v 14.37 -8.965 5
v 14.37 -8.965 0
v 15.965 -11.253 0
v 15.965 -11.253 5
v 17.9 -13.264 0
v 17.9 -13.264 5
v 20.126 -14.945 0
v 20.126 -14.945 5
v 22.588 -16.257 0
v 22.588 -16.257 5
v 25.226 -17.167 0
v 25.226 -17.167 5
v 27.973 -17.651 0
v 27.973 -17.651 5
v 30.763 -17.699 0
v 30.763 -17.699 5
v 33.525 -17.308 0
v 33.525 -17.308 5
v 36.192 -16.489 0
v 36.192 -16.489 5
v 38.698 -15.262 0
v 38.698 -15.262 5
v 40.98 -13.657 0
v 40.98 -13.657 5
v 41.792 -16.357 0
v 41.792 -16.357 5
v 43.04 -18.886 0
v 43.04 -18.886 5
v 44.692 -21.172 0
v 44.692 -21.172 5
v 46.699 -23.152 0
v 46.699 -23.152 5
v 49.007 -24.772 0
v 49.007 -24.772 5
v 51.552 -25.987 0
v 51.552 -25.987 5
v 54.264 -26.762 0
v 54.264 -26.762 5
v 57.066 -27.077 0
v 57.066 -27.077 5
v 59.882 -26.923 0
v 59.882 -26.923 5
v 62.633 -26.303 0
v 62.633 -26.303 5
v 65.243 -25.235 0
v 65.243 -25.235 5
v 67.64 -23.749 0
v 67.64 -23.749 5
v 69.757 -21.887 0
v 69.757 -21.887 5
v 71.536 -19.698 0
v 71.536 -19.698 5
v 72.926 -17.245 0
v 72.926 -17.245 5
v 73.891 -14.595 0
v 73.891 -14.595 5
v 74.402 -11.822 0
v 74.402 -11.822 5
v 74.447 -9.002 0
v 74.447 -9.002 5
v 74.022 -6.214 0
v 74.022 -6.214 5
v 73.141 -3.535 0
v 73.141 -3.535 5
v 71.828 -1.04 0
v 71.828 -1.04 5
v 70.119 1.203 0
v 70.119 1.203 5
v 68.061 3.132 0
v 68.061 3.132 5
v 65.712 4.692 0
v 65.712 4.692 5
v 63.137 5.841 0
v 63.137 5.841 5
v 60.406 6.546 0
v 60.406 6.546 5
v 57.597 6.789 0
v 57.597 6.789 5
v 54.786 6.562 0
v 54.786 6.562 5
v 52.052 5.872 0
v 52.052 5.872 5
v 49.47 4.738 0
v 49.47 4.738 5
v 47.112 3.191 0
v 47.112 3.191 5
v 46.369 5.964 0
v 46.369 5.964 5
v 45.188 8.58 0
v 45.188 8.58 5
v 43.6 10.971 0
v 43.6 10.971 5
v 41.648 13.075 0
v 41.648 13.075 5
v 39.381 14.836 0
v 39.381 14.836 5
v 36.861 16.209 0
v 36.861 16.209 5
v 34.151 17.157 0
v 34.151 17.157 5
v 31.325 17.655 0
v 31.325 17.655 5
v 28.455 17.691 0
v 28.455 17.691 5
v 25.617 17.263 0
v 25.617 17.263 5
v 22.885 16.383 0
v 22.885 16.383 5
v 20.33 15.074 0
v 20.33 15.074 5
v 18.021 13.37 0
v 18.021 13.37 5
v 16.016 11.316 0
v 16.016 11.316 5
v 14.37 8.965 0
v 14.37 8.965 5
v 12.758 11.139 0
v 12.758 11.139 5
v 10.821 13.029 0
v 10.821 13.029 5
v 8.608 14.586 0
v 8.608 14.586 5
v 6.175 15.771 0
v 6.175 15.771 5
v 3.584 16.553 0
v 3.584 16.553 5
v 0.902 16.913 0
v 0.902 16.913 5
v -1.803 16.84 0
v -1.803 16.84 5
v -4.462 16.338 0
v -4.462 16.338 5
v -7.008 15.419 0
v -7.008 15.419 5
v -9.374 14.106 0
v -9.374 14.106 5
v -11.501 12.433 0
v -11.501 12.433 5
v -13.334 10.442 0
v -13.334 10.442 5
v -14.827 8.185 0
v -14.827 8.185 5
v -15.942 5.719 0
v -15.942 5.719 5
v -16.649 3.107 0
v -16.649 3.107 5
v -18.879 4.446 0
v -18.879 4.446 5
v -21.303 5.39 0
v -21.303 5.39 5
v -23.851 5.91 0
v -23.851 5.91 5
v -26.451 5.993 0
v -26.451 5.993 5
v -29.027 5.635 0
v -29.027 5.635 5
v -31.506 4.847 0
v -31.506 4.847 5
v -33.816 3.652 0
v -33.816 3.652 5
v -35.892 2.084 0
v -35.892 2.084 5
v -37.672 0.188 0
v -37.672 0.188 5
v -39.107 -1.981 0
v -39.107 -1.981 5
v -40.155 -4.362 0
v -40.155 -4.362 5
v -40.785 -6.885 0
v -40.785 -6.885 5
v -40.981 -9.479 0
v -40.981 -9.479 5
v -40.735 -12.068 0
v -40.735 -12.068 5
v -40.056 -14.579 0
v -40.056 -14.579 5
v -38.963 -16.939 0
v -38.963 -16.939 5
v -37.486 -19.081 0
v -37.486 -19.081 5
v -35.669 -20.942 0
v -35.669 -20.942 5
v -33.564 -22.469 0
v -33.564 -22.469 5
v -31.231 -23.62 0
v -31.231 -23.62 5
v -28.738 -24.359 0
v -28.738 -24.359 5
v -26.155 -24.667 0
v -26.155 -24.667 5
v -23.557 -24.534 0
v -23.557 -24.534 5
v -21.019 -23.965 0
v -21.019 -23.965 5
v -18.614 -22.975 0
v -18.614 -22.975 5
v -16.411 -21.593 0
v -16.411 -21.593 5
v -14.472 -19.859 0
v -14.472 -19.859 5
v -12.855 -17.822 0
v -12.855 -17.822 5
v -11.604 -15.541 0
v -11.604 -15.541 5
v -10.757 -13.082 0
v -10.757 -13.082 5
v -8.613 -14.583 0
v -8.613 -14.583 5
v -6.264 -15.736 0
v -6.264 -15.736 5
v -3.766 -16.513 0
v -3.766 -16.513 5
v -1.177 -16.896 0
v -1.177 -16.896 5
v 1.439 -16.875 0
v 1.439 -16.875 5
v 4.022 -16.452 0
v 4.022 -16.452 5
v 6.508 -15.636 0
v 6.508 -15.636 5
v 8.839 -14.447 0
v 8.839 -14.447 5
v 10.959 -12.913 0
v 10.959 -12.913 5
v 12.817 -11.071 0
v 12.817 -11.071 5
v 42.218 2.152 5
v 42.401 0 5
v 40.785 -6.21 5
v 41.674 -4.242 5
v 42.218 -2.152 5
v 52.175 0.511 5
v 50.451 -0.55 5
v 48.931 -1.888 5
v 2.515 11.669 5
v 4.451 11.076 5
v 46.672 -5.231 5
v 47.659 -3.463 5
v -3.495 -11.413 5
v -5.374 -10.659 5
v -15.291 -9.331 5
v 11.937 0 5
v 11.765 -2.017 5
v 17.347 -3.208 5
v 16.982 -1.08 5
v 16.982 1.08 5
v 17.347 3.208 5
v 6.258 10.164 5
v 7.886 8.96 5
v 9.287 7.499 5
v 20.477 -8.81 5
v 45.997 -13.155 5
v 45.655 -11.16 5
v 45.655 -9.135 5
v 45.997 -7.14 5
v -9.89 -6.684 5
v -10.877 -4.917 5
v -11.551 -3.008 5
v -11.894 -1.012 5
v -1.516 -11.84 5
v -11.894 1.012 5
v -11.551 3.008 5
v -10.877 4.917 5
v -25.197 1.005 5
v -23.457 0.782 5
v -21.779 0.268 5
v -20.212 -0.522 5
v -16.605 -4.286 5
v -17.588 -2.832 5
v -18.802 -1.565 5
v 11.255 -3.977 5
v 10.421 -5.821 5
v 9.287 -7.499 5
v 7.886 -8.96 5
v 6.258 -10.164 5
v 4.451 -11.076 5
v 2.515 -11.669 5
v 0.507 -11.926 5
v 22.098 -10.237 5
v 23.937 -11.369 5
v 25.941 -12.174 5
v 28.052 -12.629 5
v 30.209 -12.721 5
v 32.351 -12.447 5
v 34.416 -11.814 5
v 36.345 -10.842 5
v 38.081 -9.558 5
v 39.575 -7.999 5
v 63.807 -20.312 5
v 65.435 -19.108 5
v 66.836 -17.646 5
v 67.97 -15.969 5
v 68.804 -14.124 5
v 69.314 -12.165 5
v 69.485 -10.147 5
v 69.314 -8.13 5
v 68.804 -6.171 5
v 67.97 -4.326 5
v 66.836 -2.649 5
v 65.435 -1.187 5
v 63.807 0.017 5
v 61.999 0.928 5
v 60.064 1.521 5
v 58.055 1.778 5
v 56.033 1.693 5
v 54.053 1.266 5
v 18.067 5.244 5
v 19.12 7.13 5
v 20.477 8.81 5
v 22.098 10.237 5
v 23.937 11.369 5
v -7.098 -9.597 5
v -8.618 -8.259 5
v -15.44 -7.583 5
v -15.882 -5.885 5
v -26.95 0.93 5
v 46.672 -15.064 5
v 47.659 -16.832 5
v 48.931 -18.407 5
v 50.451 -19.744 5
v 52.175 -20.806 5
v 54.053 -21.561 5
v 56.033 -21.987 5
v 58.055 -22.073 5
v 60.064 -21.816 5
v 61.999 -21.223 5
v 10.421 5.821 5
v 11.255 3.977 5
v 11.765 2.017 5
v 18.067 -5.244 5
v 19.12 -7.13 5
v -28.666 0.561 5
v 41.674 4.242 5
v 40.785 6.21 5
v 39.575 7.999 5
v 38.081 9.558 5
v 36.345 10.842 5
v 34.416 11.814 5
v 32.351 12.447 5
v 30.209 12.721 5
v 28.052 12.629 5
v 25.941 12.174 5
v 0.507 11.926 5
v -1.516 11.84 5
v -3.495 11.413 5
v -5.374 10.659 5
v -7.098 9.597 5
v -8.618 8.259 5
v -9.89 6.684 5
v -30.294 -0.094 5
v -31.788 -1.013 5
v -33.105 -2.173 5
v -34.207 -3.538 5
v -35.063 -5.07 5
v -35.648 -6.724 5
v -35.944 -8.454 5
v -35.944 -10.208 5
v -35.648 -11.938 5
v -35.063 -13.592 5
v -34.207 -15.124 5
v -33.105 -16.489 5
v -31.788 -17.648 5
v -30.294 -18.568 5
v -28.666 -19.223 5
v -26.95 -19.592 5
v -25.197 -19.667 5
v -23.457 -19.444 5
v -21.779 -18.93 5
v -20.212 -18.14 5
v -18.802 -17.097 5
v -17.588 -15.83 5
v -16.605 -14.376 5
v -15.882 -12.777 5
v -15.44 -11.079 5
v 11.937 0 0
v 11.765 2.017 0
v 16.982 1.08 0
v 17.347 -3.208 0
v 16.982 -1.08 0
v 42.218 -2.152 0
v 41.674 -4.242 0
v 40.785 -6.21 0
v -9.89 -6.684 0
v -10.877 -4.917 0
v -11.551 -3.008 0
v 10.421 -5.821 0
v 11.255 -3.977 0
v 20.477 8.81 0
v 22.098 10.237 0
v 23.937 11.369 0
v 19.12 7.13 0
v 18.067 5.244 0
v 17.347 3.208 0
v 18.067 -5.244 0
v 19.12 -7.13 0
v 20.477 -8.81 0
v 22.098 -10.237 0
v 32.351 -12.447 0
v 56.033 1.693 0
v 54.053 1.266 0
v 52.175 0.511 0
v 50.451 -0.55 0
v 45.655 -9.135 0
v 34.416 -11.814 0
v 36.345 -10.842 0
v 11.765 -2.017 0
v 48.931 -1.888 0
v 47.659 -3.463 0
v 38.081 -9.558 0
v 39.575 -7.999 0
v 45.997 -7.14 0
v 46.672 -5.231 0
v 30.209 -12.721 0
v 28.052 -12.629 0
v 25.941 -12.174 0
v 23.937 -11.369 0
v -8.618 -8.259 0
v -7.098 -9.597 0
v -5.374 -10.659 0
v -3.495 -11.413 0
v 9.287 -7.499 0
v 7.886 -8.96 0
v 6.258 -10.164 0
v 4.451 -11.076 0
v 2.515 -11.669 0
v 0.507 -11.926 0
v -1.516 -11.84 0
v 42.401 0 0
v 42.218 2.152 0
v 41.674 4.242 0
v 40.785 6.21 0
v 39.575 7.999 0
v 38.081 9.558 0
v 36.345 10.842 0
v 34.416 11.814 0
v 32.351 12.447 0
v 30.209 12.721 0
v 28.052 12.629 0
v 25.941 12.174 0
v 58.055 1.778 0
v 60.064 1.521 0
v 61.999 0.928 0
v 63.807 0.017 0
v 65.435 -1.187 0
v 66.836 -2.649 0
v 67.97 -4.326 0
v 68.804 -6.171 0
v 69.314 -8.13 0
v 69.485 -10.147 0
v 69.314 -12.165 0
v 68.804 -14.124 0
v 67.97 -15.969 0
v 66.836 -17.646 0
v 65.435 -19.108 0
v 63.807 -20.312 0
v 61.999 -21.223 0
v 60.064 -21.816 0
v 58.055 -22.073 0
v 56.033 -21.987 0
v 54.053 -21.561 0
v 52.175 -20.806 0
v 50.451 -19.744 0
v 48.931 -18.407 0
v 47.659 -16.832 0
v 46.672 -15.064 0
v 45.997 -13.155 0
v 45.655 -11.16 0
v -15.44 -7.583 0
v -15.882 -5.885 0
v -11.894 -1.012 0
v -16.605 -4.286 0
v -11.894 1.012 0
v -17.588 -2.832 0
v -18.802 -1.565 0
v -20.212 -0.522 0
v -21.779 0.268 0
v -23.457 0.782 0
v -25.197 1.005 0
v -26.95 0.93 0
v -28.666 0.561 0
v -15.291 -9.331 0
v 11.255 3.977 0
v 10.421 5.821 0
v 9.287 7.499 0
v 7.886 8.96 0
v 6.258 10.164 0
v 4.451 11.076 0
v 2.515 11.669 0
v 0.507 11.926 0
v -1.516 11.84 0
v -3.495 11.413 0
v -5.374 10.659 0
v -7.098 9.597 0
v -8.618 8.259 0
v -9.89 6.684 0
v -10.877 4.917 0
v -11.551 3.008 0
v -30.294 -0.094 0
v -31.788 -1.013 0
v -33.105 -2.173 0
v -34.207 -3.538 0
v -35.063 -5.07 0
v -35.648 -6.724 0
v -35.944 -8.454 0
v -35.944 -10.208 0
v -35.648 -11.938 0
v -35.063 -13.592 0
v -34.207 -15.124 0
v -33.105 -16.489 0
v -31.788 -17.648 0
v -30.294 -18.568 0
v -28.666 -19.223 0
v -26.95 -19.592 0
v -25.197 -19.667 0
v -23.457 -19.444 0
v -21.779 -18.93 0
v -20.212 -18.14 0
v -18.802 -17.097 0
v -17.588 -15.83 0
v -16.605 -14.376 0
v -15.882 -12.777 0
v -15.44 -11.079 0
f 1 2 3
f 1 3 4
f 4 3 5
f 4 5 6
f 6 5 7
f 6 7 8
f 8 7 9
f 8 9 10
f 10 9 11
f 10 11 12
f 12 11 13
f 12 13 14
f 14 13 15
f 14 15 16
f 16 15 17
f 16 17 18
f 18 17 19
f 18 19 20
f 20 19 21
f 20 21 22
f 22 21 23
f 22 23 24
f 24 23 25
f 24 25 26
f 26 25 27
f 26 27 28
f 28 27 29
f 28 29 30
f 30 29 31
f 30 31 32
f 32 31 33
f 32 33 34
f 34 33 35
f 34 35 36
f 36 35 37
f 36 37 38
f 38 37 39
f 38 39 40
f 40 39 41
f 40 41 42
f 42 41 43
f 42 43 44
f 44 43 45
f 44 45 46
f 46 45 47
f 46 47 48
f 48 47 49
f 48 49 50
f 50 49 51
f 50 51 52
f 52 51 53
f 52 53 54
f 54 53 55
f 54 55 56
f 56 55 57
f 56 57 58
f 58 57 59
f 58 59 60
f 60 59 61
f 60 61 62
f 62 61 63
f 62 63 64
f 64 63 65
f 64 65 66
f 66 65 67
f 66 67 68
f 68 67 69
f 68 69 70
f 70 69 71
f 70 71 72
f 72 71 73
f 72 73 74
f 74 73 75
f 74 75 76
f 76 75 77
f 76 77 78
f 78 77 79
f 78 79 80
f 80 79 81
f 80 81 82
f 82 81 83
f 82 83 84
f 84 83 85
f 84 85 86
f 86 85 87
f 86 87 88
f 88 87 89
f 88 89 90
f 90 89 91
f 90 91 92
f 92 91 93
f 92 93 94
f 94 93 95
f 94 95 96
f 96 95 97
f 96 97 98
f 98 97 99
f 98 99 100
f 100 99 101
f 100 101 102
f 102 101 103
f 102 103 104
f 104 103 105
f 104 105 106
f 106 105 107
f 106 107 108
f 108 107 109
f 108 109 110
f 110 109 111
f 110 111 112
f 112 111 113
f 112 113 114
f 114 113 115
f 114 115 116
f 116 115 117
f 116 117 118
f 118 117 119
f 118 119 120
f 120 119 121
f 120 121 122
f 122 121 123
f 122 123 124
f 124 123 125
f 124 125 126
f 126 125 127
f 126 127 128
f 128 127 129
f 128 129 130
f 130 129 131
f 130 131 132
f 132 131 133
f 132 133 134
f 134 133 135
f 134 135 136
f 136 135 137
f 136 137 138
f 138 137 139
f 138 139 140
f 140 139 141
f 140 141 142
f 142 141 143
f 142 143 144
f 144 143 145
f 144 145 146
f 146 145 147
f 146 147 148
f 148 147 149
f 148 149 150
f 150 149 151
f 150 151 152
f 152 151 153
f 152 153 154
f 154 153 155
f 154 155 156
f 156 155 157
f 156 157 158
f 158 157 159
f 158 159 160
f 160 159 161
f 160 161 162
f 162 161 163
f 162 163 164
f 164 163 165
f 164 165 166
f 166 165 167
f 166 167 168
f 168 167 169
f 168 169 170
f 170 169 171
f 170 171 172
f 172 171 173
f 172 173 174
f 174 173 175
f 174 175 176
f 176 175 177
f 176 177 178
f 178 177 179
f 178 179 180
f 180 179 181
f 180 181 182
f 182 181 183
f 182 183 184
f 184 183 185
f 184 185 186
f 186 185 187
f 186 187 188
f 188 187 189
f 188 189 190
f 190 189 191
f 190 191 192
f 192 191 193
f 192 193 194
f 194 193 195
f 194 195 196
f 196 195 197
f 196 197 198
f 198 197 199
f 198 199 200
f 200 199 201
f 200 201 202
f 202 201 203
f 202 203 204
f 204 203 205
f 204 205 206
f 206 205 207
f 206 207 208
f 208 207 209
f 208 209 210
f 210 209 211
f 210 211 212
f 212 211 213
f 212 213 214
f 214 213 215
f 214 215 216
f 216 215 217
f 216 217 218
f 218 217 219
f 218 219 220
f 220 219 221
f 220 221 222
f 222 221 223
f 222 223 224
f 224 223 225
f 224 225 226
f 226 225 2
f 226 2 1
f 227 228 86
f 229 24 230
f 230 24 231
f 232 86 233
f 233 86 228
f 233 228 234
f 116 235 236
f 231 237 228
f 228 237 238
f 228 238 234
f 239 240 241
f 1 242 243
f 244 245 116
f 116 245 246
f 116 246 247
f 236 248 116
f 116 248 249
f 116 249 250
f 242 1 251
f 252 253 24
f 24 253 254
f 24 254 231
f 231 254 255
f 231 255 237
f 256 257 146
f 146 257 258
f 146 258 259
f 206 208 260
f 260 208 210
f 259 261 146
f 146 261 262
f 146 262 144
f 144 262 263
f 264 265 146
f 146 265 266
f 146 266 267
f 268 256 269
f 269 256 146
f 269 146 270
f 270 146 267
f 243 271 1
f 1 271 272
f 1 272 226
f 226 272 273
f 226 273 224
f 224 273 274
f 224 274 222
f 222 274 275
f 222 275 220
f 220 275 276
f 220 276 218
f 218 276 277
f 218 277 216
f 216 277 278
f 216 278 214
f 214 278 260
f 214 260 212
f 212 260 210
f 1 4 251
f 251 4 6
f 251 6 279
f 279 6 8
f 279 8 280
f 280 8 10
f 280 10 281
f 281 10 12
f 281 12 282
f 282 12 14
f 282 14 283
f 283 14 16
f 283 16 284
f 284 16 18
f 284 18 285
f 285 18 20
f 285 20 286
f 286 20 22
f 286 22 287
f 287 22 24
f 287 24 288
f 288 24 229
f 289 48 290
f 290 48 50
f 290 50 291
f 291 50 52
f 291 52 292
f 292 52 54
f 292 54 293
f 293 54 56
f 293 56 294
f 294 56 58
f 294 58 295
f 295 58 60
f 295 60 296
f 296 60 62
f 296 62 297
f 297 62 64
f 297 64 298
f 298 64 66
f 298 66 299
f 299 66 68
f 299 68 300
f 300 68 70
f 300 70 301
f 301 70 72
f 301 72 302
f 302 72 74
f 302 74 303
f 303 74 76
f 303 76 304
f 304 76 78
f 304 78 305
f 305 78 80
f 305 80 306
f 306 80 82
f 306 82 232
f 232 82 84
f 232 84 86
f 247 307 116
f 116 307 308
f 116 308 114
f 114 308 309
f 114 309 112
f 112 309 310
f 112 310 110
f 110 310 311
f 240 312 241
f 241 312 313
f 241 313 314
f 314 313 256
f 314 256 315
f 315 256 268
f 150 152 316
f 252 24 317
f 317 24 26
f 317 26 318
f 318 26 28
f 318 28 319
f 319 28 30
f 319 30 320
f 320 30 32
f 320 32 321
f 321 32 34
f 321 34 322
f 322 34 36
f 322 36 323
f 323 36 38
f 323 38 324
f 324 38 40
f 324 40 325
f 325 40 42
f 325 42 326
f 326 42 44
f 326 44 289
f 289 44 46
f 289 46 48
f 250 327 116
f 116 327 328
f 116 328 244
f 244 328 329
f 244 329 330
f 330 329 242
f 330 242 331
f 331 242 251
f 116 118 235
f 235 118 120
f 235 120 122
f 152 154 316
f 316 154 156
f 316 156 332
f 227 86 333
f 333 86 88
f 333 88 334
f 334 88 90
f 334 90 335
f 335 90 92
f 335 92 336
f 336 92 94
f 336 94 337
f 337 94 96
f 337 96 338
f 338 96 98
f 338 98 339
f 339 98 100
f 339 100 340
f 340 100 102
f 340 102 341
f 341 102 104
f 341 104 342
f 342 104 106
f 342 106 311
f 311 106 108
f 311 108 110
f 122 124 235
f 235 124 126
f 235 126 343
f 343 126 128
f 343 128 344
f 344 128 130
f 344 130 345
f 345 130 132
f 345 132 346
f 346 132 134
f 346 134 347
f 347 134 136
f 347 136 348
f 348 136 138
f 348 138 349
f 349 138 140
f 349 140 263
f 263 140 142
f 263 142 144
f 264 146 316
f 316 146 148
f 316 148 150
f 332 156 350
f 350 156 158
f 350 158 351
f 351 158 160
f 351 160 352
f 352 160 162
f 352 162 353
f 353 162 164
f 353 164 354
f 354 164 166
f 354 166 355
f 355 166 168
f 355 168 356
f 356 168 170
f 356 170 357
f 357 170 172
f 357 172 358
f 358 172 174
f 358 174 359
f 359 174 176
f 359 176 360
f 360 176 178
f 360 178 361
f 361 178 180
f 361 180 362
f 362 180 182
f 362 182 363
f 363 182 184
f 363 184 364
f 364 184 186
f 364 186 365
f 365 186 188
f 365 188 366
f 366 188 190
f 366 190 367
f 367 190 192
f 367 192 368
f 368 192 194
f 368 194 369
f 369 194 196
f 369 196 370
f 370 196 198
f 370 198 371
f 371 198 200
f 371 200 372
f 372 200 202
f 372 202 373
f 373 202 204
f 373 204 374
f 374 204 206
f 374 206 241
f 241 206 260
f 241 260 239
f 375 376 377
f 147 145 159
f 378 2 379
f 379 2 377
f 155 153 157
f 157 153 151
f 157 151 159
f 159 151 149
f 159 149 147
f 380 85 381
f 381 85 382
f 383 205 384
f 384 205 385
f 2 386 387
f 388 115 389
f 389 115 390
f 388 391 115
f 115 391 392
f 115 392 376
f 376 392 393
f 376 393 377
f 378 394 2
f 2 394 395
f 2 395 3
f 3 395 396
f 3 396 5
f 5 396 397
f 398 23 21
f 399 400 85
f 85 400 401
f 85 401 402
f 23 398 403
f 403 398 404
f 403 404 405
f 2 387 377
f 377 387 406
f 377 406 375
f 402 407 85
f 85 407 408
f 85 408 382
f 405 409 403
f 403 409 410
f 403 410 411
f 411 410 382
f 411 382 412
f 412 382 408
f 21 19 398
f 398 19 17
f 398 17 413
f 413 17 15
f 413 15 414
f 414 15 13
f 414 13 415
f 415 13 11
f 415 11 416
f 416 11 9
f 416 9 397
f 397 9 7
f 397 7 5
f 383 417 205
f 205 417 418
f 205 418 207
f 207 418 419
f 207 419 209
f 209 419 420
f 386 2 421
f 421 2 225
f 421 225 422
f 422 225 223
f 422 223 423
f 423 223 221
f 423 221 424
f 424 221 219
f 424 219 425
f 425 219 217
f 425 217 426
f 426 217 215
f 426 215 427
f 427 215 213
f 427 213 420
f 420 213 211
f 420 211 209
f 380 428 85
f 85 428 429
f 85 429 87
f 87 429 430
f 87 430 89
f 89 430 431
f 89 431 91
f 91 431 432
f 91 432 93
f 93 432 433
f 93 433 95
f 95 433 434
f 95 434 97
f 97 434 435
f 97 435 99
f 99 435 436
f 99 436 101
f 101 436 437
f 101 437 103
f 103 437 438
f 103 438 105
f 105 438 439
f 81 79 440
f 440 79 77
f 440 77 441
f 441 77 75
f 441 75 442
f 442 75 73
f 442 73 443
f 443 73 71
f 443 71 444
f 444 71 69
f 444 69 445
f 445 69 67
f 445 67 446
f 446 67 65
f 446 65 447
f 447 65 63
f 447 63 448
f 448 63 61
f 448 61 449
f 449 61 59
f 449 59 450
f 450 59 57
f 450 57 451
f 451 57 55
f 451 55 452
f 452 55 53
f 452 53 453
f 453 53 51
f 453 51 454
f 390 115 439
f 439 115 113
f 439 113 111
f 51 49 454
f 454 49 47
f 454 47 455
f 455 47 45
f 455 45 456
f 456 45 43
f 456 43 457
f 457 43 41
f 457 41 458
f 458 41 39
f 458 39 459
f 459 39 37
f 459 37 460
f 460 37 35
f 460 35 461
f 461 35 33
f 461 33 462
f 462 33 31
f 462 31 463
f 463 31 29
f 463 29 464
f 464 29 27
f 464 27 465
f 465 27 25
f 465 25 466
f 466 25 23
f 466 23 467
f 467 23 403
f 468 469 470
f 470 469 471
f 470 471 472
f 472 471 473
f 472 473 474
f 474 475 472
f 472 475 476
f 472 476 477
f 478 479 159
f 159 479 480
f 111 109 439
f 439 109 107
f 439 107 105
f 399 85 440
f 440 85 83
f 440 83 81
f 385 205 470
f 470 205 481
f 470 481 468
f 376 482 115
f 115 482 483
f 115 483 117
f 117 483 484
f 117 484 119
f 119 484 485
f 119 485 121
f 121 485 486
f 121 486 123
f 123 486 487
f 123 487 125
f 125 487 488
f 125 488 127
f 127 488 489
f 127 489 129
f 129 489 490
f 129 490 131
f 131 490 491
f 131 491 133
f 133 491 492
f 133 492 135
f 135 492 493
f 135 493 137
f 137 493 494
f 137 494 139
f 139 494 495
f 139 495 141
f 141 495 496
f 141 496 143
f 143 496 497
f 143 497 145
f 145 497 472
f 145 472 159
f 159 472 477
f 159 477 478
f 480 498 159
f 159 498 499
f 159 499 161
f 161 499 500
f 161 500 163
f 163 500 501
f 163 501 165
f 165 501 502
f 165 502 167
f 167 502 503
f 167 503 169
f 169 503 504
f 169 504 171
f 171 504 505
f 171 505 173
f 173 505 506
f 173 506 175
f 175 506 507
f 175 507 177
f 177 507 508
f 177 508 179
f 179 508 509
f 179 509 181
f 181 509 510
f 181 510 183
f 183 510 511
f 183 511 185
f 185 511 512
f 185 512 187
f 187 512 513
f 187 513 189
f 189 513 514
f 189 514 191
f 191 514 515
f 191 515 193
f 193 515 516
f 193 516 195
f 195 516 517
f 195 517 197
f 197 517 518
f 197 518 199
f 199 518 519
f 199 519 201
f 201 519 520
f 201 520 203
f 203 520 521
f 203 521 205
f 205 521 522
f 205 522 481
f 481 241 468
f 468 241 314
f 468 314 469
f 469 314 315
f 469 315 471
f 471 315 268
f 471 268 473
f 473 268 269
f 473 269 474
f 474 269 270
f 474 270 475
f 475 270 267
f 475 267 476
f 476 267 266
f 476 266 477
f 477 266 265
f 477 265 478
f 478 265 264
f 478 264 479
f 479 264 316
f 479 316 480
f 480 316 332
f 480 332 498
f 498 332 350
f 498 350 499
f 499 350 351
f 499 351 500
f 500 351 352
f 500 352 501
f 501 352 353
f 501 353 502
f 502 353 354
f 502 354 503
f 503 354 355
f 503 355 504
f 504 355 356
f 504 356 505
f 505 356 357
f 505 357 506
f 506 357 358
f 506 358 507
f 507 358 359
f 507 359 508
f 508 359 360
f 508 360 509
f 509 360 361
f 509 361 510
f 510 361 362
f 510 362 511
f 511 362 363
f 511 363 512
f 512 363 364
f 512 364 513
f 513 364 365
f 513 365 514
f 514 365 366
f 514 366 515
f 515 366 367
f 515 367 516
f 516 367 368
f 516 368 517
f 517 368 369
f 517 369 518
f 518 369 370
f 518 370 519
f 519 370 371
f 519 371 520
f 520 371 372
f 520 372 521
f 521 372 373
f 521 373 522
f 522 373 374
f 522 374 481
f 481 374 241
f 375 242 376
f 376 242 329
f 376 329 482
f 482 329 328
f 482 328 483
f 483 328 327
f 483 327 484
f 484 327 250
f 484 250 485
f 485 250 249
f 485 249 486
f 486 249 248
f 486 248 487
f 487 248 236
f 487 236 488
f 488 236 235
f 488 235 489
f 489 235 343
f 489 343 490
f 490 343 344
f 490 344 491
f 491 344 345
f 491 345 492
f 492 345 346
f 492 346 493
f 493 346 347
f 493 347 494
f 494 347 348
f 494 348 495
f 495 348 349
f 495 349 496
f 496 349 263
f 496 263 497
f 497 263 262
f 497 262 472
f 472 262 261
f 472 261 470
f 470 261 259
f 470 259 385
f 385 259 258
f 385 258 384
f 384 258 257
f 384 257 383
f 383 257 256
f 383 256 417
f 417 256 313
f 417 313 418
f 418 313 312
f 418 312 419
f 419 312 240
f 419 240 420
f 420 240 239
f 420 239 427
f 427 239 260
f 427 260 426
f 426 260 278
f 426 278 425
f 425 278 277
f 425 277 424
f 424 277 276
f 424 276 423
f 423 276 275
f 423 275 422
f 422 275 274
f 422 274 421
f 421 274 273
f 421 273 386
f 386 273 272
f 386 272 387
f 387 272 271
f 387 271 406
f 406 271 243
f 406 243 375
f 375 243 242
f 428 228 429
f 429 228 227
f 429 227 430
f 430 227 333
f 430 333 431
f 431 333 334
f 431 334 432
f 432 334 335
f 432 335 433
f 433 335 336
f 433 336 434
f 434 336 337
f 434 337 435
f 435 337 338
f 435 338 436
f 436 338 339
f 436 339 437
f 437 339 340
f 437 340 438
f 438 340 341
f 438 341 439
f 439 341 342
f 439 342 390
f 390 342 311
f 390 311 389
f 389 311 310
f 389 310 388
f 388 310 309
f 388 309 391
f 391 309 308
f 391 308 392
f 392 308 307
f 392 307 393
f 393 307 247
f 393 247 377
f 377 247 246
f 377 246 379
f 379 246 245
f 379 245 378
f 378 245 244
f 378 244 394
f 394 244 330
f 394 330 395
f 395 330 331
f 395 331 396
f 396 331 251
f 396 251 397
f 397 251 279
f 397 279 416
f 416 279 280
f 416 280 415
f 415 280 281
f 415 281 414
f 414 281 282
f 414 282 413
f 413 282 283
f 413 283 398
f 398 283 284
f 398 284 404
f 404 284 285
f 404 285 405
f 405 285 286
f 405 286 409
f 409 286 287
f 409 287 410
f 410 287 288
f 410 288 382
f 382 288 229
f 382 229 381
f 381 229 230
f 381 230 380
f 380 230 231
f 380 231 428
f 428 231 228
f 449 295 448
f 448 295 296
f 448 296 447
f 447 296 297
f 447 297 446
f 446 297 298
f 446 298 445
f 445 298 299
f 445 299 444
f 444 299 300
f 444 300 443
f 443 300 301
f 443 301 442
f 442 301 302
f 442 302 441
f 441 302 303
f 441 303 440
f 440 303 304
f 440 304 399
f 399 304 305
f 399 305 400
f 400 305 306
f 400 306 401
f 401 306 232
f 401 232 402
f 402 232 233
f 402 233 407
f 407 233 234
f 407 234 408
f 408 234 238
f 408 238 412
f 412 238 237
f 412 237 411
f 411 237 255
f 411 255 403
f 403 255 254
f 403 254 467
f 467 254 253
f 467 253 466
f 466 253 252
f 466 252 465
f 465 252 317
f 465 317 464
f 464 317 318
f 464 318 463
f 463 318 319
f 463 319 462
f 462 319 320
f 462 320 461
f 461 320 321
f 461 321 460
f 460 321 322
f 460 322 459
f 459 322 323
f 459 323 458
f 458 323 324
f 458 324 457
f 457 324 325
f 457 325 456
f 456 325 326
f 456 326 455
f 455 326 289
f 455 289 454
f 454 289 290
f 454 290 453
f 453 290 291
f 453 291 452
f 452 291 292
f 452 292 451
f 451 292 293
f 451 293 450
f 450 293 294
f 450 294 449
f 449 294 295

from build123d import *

# Parameters (mm, degrees)
BOSS_EXTRUDE2_DEPTH = 5
SKETCH2_R           = 10.345071301
CUT_EXTRUDE1_DEPTH  = 5
SKETCH3_R           = 11.936620732
CUT_EXTRUDE2_DEPTH  = 5
SKETCH5_R           = 12.732395447
CUT_EXTRUDE3_DEPTH  = 5
SKETCH6_R           = 11.936620732
CUT_EXTRUDE4_DEPTH  = 5


with BuildPart() as part:
    # Sketch1 → Boss-Extrude2 (new body)
    with BuildSketch(Plane.XY):
        with BuildLine():
            ThreePointArc((-10.756876138, -13.082000519), (2.738805764, -16.713708888), (14.369566376, -8.964635184))
            ThreePointArc((14.369566376, -8.964635184), (26.589818025, -17.463000516), (40.979710452, -13.656721546))
            ThreePointArc((40.979710452, -13.656721546), (73.463989272, -15.940066616), (47.111882074, 3.191281517))
            ThreePointArc((47.111882074, 3.191281517), (32.748214335, 17.463000516), (14.369566376, 8.964635184))
            ThreePointArc((14.369566376, 8.964635184), (-3.142789543, 16.642475648), (-16.649193034, 3.107007102))
            ThreePointArc((-16.649193034, 3.107007102), (-40.05605495, -14.579211704), (-10.756876138, -13.082000519))
        make_face()
    extrude(amount=BOSS_EXTRUDE2_DEPTH)

    # Sketch2 → Cut-Extrude1 (cut)
    with BuildSketch(Plane.XY.offset(5)):
        with Locations((-25.636404683, -9.330888218)):
            Circle(SKETCH2_R)
    extrude(amount=-CUT_EXTRUDE1_DEPTH, mode=Mode.SUBTRACT)

    # Sketch3 → Cut-Extrude2 (cut)
    with BuildSketch(Plane.XY.offset(5)):
        Circle(SKETCH3_R)
    extrude(amount=-CUT_EXTRUDE2_DEPTH, mode=Mode.SUBTRACT)

    # Sketch5 → Cut-Extrude3 (cut)
    with BuildSketch(Plane.XY.offset(5)):
        with Locations((29.66901618, 0)):
            Circle(SKETCH5_R)
    extrude(amount=-CUT_EXTRUDE3_DEPTH, mode=Mode.SUBTRACT)

    # Sketch6 → Cut-Extrude4 (cut)
    with BuildSketch(Plane.XY.offset(5)):
        with Locations((57.54877175, -10.147401166)):
            Circle(SKETCH6_R)
    extrude(amount=-CUT_EXTRUDE4_DEPTH, mode=Mode.SUBTRACT)


solid = part.part
